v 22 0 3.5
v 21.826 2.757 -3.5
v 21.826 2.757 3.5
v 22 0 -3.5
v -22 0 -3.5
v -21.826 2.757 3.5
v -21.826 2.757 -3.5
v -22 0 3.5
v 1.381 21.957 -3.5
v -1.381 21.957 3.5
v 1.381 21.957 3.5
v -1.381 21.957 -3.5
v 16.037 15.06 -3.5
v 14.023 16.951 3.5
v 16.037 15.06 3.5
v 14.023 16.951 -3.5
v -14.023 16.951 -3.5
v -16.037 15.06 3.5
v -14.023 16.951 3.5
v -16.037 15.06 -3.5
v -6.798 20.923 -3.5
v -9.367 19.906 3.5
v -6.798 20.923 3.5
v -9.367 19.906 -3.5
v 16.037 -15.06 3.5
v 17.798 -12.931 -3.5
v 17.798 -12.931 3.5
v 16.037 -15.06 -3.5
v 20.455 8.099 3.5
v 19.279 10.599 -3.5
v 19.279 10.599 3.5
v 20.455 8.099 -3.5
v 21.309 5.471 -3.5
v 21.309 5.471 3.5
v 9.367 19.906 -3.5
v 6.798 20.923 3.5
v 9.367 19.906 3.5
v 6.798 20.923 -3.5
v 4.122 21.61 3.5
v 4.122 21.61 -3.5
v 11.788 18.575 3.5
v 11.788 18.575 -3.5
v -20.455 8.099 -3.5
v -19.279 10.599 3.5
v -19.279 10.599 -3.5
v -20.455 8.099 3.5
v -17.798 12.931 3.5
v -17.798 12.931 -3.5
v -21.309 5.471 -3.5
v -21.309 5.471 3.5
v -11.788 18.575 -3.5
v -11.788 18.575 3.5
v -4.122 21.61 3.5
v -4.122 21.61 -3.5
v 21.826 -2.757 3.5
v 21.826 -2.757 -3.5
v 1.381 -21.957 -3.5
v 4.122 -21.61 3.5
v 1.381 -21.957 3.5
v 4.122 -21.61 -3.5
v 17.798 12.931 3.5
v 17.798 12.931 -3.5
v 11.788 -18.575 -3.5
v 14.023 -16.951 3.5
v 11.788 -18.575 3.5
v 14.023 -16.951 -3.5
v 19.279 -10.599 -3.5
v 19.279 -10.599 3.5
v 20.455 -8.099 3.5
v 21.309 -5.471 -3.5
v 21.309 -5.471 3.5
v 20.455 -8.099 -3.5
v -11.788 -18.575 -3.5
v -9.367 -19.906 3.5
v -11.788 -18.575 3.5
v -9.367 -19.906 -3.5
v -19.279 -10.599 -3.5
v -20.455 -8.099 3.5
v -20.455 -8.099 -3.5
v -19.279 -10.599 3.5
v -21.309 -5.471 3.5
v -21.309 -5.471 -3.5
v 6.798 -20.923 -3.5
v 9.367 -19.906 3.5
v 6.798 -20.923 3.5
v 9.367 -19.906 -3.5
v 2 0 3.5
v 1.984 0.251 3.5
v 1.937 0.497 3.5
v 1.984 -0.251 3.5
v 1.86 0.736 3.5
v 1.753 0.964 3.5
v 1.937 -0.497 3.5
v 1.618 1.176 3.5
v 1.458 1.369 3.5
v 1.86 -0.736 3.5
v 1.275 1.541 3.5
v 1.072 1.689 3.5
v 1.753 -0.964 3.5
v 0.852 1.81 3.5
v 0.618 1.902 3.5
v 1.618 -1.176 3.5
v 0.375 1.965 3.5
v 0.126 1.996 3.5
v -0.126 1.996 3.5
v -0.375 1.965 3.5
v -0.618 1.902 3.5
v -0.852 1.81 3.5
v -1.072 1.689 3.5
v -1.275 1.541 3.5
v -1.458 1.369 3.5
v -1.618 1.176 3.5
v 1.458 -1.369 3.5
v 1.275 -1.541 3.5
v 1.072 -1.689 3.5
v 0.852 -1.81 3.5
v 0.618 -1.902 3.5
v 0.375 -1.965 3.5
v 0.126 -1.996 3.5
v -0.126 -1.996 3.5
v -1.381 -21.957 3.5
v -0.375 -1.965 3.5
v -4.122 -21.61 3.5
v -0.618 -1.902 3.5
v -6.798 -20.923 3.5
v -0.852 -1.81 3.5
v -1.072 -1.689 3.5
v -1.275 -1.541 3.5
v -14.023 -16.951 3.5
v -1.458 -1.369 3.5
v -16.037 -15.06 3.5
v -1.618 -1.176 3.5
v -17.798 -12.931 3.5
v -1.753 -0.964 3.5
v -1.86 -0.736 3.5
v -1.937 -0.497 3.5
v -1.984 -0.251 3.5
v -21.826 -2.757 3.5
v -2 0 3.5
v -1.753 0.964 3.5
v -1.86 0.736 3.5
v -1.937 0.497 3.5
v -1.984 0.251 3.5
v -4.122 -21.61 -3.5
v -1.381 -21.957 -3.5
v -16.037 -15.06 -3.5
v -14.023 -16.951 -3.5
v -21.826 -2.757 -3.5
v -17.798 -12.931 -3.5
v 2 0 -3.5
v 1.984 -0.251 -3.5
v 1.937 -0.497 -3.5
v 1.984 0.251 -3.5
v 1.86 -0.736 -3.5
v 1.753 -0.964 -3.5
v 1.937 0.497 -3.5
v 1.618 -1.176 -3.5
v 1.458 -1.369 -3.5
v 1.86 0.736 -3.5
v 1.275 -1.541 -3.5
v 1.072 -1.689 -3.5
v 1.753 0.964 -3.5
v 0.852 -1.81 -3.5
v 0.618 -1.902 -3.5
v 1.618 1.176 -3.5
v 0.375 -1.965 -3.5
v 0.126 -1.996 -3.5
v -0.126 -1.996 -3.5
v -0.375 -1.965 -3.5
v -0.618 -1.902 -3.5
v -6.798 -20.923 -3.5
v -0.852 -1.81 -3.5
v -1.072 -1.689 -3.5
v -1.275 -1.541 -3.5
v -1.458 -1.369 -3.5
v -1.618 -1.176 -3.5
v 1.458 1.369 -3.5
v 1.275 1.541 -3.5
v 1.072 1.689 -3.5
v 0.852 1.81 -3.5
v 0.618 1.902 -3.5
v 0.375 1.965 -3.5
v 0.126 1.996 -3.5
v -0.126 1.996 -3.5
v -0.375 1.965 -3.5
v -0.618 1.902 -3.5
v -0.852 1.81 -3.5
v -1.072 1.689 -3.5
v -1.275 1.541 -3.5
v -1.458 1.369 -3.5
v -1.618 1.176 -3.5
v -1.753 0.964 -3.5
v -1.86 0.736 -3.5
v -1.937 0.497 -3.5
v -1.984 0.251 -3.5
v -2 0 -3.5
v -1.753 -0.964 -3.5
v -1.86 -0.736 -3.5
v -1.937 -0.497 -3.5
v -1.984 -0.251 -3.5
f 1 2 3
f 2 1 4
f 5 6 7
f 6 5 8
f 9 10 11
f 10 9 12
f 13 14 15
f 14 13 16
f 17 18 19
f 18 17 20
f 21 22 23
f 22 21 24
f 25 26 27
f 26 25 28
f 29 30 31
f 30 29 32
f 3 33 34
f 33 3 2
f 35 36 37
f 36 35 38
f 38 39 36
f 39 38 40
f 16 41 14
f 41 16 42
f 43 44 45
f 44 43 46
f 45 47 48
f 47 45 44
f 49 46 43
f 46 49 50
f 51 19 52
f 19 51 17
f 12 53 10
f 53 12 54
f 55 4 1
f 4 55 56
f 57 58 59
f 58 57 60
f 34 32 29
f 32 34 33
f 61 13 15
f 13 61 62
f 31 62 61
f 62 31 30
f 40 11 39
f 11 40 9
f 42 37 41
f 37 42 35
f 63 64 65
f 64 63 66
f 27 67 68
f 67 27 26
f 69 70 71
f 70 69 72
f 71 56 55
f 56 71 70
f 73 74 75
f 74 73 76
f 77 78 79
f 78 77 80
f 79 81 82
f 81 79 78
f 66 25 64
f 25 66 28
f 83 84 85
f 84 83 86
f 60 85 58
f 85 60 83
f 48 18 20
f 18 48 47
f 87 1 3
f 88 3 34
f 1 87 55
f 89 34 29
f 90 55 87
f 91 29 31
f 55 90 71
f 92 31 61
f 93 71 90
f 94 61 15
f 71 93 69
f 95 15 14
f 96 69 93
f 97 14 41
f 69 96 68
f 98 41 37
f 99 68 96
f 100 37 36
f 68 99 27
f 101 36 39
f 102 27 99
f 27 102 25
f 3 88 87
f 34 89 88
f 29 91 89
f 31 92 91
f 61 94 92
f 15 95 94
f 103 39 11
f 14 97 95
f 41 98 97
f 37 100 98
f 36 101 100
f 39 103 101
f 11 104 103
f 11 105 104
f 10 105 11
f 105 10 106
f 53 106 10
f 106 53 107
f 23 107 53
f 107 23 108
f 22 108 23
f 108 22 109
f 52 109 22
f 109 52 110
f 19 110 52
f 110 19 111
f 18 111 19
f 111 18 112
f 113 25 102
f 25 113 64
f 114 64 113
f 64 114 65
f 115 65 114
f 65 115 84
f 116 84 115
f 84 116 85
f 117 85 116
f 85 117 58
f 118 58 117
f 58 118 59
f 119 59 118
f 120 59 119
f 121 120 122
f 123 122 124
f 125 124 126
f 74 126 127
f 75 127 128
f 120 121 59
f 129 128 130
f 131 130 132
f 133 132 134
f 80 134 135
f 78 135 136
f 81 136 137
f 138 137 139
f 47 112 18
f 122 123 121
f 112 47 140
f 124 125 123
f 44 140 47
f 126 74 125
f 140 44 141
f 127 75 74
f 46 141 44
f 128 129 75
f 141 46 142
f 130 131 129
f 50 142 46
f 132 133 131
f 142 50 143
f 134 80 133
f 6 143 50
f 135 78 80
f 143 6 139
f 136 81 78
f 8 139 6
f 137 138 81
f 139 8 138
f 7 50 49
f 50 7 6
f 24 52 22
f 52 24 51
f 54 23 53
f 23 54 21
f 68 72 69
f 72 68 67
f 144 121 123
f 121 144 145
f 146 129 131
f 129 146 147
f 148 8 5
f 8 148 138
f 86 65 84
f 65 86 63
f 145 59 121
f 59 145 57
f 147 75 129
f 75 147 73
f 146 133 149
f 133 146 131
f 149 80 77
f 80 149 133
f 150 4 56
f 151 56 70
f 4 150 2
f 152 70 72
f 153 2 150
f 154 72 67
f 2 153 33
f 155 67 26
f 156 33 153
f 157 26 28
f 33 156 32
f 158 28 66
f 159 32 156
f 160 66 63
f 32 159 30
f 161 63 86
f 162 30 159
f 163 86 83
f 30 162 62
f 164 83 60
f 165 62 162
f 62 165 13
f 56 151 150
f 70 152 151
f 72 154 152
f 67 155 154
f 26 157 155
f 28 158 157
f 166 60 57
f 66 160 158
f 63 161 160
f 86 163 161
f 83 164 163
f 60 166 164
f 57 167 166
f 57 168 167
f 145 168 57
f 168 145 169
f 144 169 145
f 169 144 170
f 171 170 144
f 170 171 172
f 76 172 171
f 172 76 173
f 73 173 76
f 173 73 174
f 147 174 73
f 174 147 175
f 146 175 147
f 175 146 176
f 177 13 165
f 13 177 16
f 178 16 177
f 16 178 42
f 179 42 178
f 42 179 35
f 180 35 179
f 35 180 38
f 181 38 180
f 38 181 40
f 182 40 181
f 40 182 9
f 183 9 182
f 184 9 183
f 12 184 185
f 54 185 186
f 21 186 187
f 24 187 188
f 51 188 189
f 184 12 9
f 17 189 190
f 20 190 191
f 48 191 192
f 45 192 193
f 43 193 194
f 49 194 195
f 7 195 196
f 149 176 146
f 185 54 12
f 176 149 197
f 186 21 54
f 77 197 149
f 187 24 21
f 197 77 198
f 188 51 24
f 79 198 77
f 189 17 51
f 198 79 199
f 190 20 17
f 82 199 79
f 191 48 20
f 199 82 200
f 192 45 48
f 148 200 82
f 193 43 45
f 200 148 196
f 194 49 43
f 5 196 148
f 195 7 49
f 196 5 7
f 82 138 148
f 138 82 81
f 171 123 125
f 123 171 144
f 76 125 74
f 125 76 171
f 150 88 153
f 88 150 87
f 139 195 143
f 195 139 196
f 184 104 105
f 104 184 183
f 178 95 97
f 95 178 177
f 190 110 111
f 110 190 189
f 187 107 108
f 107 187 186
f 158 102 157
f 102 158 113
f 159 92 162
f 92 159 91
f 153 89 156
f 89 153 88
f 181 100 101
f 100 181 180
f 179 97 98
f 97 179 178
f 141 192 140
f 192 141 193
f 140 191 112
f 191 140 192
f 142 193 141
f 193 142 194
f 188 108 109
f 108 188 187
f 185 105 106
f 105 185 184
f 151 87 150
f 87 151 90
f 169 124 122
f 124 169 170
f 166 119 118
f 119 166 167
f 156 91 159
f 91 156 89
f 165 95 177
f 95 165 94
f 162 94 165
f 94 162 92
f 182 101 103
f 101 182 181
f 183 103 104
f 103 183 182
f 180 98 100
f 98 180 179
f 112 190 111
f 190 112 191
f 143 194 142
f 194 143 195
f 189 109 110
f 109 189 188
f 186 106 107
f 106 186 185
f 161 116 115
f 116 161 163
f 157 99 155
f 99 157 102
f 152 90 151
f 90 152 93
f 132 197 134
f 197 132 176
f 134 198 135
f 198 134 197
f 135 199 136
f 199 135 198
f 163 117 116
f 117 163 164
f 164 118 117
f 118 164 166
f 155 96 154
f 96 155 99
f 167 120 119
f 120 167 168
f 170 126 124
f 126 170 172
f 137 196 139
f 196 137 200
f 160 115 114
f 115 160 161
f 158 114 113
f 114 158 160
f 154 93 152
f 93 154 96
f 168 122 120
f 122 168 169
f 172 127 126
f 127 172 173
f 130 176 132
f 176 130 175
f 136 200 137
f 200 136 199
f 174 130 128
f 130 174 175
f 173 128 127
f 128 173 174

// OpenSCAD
$fn = 50;


difference() {
	union() {
		translate(v = [0, 0, -3.5000000000]) {
			cylinder(h = 7, r = 22.0000000000);
		}
	}
	union() {
		translate(v = [0, 0, -100.0000000000]) {
			cylinder(h = 200, r = 2.0000000000);
		}
	}
}
